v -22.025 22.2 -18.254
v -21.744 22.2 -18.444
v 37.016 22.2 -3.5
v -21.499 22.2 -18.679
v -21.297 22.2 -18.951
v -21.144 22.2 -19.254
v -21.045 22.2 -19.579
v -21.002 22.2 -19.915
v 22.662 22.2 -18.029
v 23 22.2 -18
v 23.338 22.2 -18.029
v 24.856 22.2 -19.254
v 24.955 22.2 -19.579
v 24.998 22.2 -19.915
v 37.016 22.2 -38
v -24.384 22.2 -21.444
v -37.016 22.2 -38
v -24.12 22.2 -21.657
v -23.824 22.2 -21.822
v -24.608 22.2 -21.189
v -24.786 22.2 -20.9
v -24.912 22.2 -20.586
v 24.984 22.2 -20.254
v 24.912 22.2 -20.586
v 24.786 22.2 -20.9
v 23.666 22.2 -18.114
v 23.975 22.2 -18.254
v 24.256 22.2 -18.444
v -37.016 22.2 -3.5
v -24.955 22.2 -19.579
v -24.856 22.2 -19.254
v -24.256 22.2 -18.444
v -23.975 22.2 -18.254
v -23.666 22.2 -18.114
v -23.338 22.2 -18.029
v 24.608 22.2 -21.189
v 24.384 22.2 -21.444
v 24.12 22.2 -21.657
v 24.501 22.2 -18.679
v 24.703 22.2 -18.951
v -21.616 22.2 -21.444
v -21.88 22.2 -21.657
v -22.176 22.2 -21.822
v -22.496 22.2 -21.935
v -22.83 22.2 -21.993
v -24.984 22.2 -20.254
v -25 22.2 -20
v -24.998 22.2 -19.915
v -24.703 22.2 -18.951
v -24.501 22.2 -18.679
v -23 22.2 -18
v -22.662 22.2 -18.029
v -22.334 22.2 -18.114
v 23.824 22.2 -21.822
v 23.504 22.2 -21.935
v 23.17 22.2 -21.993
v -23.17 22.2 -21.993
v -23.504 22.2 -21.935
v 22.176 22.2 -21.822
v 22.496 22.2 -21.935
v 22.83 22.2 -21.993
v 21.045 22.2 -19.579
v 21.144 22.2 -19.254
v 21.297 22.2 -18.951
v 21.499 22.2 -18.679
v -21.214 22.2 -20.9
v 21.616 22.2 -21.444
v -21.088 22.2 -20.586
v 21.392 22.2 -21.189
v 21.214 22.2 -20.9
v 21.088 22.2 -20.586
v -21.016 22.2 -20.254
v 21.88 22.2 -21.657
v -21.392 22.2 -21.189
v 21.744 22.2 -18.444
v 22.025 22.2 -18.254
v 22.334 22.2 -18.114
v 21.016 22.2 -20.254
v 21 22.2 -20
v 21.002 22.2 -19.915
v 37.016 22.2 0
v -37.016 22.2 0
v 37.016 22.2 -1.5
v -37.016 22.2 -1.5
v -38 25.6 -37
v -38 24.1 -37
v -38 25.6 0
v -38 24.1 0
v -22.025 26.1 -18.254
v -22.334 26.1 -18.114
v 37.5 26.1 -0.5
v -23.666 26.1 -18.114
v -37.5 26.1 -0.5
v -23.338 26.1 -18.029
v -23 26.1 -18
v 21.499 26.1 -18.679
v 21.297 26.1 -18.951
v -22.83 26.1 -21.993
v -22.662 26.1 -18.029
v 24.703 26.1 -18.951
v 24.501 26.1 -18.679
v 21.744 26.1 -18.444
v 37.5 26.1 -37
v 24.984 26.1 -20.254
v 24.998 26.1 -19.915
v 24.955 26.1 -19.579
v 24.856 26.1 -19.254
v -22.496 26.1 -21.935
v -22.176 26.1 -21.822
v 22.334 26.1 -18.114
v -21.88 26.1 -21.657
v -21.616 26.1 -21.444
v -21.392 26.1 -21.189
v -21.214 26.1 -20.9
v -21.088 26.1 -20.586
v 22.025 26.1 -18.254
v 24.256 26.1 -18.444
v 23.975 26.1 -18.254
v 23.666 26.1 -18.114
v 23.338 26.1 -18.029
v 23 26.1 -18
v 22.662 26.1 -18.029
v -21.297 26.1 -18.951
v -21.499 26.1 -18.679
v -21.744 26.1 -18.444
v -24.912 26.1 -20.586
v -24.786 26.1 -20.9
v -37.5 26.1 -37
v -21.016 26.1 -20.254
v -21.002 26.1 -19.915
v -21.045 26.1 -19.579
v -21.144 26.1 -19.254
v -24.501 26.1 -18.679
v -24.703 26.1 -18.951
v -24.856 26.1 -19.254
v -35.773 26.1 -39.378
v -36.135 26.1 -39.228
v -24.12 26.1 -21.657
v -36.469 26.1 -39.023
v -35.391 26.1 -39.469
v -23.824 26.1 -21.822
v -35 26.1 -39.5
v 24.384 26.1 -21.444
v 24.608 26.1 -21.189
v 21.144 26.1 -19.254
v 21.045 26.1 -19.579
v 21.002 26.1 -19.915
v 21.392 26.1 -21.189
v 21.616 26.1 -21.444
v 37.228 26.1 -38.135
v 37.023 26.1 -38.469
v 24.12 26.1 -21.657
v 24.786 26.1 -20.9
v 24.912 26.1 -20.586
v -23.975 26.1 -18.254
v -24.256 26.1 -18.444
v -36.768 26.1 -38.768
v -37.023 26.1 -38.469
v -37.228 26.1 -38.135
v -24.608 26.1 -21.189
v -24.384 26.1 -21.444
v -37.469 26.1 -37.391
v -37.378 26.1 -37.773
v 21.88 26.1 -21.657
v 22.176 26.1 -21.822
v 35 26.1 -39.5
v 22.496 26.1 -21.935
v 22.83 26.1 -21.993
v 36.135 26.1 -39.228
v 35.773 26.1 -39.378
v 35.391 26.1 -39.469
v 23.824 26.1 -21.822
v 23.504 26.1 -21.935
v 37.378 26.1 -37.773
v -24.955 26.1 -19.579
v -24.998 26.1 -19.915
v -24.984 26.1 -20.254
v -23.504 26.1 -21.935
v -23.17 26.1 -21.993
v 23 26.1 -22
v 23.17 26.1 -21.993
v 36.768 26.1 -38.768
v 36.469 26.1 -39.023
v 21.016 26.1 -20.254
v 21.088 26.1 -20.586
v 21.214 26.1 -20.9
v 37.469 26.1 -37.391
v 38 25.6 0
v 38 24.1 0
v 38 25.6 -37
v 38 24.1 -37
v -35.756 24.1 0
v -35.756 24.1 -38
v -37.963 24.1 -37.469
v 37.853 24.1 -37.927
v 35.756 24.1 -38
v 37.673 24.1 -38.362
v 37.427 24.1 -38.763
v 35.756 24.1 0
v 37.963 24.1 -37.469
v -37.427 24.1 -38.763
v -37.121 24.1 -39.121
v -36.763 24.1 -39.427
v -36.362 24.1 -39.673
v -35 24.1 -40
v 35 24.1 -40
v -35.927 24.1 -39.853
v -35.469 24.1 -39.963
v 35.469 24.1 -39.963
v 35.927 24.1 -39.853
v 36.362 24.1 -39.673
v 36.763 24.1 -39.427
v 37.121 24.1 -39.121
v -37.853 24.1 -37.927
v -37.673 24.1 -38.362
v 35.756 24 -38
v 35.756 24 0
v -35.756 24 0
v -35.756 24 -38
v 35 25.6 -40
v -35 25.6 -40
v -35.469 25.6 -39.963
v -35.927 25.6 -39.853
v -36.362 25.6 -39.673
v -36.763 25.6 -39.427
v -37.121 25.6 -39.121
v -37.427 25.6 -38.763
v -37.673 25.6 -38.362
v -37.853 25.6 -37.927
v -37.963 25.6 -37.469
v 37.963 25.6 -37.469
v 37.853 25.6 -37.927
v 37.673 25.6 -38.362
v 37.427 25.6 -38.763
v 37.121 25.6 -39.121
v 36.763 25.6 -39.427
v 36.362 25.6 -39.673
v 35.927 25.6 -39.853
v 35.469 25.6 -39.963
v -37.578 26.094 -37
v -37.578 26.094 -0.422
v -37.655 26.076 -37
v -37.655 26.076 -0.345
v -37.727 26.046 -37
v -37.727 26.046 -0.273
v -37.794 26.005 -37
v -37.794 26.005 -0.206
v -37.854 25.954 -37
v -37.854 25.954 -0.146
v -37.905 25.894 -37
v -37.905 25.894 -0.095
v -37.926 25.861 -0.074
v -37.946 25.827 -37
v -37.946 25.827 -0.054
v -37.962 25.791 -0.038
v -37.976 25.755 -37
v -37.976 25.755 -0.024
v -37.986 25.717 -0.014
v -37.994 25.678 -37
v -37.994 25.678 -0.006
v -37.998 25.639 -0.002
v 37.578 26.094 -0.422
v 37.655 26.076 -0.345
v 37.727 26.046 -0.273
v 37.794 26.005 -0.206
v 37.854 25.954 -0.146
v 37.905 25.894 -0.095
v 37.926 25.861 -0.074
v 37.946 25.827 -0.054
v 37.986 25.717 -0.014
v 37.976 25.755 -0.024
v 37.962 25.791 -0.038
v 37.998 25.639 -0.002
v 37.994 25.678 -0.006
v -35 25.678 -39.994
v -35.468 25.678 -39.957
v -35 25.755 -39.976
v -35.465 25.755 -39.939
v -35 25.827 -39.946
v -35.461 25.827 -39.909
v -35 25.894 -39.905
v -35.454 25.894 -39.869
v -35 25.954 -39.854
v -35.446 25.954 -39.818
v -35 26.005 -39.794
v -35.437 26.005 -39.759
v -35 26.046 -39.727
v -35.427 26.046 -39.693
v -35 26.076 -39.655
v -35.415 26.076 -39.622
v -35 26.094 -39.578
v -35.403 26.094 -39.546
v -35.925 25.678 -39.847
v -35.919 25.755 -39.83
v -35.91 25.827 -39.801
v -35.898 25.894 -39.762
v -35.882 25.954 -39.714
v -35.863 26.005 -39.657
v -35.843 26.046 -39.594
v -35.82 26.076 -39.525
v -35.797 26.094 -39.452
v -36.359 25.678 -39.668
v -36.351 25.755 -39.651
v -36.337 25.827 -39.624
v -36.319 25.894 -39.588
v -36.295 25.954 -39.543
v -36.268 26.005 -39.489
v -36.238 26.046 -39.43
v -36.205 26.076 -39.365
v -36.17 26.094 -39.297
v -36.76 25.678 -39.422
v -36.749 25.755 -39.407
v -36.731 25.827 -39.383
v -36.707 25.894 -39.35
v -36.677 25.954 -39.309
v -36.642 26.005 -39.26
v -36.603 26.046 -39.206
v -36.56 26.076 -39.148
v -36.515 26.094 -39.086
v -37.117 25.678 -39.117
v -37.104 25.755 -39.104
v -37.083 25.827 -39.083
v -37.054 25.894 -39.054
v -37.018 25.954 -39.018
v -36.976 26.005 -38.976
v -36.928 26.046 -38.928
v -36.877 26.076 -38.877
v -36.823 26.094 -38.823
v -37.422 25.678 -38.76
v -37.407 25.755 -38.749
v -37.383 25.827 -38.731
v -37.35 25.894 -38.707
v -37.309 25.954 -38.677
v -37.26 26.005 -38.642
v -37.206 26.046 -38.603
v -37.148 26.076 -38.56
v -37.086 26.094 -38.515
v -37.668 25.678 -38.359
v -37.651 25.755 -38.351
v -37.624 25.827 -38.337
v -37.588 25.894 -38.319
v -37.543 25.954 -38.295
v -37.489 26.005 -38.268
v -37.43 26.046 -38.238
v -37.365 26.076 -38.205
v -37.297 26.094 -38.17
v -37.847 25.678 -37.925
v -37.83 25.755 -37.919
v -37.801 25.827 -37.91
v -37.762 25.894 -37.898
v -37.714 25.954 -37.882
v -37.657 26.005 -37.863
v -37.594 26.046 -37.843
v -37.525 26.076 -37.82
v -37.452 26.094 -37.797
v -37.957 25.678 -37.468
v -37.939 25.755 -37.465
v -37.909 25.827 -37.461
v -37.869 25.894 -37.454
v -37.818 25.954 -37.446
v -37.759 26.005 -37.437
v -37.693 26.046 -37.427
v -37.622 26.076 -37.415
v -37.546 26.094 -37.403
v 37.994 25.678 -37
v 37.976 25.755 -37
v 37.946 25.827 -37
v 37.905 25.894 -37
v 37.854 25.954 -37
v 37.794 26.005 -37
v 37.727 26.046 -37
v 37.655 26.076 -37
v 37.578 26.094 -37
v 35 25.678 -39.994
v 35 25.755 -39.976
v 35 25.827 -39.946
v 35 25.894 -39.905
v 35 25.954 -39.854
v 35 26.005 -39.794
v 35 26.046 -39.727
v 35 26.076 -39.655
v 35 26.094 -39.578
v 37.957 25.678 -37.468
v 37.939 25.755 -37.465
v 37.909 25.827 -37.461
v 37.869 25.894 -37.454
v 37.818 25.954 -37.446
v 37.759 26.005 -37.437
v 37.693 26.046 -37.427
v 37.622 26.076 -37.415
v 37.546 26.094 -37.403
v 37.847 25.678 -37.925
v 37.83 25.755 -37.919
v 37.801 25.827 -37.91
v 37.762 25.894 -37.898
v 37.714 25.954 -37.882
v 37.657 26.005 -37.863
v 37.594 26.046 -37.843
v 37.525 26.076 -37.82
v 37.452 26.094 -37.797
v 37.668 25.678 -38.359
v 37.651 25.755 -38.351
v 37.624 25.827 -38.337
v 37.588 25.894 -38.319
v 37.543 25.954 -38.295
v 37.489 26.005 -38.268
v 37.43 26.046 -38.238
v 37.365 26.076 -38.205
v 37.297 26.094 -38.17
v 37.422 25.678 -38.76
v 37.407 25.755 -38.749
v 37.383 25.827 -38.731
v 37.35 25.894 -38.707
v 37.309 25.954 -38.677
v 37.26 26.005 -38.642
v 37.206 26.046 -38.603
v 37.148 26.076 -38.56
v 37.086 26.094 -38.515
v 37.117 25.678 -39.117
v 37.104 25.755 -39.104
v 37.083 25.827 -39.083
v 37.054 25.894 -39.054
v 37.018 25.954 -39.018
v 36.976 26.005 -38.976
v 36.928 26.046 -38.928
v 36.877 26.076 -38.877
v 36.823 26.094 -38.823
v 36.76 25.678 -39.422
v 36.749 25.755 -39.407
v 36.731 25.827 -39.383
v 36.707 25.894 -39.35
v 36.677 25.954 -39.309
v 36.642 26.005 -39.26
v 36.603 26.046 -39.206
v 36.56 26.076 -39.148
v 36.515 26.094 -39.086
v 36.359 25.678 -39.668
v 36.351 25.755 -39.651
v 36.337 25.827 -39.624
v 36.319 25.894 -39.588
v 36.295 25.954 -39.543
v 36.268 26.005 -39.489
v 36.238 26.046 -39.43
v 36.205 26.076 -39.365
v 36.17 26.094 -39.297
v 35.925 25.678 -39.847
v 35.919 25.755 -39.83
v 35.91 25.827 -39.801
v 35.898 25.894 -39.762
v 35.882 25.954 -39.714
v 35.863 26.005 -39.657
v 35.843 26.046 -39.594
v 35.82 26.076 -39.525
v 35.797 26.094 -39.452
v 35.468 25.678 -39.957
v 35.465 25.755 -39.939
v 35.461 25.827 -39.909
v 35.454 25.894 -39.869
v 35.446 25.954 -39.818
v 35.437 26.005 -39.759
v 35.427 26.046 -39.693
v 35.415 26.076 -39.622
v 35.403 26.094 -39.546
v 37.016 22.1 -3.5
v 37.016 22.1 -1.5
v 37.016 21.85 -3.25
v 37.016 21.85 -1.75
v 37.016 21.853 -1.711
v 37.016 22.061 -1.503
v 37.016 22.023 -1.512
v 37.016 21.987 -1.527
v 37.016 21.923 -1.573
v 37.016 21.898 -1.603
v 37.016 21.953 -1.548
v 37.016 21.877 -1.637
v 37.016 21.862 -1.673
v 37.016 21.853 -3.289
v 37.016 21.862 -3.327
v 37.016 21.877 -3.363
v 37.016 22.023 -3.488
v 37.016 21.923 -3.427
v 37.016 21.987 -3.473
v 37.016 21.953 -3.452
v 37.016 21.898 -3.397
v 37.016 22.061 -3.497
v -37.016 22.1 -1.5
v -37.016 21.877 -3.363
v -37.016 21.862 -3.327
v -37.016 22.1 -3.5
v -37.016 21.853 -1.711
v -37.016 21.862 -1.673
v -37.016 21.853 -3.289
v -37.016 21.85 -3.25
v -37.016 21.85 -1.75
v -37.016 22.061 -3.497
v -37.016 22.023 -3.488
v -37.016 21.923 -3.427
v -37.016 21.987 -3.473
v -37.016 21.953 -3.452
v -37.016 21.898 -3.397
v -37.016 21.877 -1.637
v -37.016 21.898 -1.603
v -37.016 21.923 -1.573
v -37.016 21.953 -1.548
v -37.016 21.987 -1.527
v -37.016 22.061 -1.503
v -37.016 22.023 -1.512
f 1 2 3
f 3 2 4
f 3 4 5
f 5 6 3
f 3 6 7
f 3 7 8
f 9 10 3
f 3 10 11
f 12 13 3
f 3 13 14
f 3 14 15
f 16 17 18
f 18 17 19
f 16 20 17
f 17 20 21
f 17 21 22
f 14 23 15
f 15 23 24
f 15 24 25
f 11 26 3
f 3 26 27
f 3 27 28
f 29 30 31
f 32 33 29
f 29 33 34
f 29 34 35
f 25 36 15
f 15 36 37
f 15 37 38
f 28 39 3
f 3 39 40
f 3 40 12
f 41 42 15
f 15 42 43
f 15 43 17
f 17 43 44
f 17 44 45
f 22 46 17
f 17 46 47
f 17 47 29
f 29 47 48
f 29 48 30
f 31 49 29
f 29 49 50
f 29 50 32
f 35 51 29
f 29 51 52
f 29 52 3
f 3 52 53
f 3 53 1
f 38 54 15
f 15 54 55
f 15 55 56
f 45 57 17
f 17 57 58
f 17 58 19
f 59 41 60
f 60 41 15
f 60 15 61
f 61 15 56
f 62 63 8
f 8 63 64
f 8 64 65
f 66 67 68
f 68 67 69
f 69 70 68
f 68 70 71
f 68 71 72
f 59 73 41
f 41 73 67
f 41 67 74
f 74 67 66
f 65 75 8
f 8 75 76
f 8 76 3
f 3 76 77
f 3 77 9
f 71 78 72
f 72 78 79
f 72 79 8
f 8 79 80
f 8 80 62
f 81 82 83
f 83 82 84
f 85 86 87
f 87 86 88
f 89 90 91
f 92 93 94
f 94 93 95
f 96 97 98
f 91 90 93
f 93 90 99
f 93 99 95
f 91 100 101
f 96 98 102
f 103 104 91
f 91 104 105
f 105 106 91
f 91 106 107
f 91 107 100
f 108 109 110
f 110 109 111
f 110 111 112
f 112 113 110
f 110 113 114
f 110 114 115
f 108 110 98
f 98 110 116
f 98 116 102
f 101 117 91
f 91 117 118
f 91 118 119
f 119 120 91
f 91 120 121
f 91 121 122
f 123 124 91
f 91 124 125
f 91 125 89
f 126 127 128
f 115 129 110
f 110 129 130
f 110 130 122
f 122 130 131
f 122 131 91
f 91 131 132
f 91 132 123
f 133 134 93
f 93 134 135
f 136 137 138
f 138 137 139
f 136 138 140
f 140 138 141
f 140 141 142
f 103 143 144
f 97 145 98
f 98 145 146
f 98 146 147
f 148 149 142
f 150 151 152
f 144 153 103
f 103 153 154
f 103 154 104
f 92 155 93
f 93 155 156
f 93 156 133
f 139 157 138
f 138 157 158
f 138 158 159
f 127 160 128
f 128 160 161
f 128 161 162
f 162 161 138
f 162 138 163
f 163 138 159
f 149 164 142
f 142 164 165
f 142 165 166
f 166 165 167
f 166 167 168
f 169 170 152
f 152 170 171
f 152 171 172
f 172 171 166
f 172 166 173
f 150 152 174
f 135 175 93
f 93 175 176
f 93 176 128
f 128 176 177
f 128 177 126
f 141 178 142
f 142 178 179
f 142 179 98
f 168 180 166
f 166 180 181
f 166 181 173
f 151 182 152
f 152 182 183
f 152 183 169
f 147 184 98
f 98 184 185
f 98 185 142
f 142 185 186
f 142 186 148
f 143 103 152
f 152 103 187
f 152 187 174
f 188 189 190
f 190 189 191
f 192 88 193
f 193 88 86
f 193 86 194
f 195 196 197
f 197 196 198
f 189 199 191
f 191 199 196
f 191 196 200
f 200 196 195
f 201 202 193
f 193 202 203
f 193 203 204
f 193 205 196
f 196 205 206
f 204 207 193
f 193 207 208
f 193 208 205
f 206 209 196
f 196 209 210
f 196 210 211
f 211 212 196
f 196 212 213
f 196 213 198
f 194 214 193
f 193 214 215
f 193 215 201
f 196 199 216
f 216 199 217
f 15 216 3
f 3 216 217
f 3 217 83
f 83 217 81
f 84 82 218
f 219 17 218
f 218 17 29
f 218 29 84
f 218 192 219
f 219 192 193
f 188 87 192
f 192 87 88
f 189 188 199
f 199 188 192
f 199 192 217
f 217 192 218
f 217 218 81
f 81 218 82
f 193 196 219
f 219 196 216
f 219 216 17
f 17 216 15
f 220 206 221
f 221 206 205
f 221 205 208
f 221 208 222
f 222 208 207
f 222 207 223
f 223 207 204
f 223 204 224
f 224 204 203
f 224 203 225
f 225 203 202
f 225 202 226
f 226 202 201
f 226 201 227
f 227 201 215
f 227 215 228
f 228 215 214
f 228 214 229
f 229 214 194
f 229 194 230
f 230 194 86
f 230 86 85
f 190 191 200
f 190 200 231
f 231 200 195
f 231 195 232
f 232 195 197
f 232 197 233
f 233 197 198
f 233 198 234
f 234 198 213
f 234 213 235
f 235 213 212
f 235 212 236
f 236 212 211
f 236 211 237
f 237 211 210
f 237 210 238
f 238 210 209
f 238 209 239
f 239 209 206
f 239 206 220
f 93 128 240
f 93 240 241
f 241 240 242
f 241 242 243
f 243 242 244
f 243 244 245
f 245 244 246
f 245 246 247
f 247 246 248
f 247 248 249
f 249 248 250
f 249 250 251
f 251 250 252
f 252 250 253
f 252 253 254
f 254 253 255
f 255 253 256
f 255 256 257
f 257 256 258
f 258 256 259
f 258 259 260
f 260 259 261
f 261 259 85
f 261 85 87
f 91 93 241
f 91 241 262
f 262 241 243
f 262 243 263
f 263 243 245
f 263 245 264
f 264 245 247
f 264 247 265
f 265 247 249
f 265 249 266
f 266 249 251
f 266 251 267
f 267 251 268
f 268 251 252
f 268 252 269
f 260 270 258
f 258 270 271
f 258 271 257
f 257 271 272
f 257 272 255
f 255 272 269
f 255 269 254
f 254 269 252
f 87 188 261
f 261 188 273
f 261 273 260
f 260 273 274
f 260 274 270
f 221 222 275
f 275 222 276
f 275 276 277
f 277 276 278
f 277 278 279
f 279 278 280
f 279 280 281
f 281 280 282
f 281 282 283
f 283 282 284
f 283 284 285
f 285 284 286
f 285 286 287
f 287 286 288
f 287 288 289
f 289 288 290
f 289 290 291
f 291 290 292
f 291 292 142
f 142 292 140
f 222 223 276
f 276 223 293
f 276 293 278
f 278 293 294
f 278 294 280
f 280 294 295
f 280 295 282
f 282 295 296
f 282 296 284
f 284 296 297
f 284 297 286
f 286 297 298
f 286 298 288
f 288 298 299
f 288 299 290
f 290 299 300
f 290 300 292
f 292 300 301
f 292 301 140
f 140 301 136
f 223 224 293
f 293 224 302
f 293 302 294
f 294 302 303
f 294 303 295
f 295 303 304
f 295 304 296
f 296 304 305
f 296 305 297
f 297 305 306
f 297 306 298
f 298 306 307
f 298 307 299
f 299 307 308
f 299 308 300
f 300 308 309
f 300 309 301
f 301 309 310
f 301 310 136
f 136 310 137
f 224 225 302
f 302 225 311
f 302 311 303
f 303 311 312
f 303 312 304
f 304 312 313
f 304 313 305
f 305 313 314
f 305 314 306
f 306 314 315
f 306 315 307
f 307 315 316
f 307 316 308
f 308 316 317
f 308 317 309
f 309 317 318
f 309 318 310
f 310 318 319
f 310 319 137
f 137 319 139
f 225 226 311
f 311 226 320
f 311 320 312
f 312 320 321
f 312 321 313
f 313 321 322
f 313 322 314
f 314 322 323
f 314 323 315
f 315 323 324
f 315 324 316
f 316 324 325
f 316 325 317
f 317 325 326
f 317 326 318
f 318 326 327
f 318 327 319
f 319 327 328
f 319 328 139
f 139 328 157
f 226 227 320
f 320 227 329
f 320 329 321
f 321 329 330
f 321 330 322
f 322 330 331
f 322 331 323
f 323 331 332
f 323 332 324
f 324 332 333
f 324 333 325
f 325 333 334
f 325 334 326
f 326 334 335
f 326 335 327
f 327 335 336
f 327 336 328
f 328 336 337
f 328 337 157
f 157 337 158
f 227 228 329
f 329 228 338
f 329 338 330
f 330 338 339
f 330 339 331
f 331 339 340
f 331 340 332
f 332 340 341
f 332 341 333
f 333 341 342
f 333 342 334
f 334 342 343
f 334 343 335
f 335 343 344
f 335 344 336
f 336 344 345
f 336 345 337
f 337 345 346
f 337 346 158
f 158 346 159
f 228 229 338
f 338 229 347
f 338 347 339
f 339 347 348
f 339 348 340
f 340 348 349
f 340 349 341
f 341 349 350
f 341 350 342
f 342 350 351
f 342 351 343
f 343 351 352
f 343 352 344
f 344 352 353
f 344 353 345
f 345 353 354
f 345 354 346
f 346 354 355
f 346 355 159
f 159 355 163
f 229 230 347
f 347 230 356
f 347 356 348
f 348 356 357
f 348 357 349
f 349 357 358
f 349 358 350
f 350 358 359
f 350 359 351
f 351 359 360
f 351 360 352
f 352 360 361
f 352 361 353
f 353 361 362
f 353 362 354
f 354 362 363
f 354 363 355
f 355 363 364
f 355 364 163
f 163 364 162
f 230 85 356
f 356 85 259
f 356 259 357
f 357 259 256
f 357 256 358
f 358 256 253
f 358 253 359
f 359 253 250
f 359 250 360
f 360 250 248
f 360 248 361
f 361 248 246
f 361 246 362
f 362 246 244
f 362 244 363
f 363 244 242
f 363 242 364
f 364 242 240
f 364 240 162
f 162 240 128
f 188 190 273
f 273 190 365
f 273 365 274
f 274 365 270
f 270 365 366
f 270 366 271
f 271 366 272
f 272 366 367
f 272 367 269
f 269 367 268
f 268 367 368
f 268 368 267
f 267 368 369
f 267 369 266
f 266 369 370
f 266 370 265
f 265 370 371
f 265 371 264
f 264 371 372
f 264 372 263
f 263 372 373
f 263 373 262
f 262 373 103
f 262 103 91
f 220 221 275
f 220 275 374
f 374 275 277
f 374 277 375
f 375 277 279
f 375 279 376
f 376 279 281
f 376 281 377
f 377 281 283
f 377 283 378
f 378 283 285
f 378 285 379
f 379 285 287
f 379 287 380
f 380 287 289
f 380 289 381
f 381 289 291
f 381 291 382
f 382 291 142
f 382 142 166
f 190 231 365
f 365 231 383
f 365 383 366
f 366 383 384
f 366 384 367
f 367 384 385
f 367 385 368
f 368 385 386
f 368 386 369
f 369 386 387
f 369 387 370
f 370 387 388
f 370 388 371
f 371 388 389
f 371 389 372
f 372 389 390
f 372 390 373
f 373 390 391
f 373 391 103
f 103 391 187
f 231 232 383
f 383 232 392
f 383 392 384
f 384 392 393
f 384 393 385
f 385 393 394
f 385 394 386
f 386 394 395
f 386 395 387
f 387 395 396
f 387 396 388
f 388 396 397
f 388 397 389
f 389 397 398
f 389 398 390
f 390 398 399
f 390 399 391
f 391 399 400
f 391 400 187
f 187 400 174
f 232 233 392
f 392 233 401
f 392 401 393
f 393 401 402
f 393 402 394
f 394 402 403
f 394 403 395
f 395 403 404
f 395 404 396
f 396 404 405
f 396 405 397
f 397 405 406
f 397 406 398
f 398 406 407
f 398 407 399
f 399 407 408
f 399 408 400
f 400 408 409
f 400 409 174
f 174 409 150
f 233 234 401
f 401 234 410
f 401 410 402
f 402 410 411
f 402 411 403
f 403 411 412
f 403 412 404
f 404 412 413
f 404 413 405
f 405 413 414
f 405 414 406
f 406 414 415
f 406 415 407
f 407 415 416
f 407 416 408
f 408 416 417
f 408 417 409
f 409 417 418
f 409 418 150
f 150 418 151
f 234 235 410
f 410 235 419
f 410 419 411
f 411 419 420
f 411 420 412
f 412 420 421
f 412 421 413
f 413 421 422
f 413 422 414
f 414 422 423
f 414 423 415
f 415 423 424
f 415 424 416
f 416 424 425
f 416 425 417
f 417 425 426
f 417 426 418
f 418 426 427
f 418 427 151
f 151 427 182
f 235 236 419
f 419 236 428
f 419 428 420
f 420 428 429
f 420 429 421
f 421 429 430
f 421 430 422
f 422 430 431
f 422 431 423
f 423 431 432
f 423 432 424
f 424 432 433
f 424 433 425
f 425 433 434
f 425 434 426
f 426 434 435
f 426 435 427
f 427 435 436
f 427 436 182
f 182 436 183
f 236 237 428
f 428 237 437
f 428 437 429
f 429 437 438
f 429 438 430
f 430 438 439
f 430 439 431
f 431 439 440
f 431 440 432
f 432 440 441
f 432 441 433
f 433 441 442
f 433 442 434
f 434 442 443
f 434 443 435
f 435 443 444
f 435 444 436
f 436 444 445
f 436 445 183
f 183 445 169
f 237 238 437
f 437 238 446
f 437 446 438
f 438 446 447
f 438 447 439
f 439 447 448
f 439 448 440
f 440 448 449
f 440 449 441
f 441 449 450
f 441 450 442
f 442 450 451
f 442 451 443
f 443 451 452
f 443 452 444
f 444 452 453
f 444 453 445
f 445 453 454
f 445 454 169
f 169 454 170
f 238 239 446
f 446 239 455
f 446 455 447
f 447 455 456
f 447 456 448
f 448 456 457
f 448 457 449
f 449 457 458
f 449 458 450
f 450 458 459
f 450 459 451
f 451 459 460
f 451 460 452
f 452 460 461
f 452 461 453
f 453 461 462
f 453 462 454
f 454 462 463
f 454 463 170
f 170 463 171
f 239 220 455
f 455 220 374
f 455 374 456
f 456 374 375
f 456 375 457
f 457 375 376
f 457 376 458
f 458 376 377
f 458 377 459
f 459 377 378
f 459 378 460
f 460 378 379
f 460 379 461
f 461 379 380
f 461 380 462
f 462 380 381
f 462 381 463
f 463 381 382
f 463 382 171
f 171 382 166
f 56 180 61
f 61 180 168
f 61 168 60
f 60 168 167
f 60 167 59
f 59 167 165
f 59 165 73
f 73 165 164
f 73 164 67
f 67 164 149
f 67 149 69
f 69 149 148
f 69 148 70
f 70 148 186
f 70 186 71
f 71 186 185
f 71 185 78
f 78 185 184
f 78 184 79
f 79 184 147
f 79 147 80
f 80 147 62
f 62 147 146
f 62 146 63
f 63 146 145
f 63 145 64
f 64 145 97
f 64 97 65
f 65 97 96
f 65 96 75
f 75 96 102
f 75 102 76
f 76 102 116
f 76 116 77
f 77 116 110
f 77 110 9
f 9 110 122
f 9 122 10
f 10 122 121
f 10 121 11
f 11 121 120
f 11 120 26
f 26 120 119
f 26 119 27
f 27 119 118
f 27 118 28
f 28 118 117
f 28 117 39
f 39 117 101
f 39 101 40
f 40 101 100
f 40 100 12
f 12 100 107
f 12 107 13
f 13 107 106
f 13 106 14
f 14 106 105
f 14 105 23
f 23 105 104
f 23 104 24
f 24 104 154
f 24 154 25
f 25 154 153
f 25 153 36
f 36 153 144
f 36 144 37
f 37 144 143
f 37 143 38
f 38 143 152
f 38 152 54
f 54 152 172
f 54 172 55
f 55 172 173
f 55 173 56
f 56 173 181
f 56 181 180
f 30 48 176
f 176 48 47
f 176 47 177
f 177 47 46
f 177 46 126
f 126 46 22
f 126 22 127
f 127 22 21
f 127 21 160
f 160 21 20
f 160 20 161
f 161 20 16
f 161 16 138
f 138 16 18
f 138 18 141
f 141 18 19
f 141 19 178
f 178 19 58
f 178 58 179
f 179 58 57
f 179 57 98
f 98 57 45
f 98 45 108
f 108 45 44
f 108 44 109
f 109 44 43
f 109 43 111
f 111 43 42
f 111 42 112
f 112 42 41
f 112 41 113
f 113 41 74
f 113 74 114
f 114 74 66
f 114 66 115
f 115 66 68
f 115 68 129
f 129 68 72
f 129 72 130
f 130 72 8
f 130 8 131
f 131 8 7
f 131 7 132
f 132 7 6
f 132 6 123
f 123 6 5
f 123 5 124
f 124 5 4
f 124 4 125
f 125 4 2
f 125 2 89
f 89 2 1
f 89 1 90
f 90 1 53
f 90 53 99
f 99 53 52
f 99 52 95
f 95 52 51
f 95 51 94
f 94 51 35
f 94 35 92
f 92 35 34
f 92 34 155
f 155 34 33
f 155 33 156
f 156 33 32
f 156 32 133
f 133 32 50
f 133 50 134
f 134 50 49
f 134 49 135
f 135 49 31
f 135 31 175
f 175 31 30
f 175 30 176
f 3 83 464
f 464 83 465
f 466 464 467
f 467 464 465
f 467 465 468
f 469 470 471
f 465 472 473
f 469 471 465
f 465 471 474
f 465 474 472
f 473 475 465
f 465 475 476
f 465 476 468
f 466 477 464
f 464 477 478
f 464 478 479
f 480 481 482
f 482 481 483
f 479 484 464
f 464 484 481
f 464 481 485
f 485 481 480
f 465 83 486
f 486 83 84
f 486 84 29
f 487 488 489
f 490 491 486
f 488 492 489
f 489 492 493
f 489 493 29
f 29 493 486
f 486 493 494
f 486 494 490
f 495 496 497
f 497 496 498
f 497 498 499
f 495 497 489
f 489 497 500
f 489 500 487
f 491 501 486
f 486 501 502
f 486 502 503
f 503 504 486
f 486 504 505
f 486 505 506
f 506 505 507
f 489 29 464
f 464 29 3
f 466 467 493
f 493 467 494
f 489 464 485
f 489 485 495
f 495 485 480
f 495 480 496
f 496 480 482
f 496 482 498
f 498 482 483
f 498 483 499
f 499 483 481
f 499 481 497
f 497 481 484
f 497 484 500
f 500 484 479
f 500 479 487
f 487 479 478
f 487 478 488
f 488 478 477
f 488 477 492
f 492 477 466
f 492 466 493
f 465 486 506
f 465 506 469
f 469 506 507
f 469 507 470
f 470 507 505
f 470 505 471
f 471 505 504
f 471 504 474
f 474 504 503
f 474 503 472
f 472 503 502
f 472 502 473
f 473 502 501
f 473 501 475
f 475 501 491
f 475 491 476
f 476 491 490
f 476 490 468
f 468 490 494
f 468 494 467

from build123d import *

# Parameters (mm, degrees)
BOSS_EXTRUDE1_DEPTH = 38
SKETCH2_W           = 76
SKETCH2_H           = 2
BOSS_EXTRUDE2_DEPTH = 2
FILLET1_R           = 3
FILLET2_R           = 0.5
CUT_EXTRUDE1_REACH  = 57.31
SKETCH3_R           = 2
SKETCH4_W           = 74.032437302
SKETCH4_H           = 2
BOSS_EXTRUDE3_DEPTH = 0.35
FILLET3_R           = 0.25


with BuildPart() as part:
    # Sketch1 → Boss-Extrude1 (new body)
    with BuildSketch(Plane.XY):
        Polygon((35.755845082, 24), (37.016218651, 22.2), (-37.016218651, 22.2), (-35.755845082, 24), (-35.755845082, 24.1), (-38, 24.1), (-38, 26.1), (38, 26.1), (38, 24.1), (35.755845082, 24.1), align=None)
    extrude(amount=-BOSS_EXTRUDE1_DEPTH)

    # Sketch2 → Boss-Extrude2 (add)
    with BuildSketch(Plane(origin=(0, 0, -38), x_dir=(-1, 0, 0), z_dir=(0, 0, -1))):
        with Locations((0, 25.1)):
            Rectangle(SKETCH2_W, SKETCH2_H)
    extrude(amount=BOSS_EXTRUDE2_DEPTH)

    # Fillet1
    fillet1_edges = [part.edges().sort_by_distance(p)[0] for p in [
        (-38, 25.1, -40),
        (38, 25.1, -40),
    ]]
    fillet(fillet1_edges, radius=FILLET1_R)

    # Fillet2
    fillet2_edges = [part.edges().sort_by_distance(p)[0] for p in [
        (0, 26.1, 0),
        (-38, 26.1, -18.5),
        (0, 26.1, -40),
        (38, 26.1, -18.5),
        (37.121320344, 26.1, -39.121320344),
        (-37.121320344, 26.1, -39.121320344),
    ]]
    fillet(fillet2_edges, radius=FILLET2_R)

    # Sketch3 → Cut-Extrude1 (cut, up to next)
    with BuildSketch(Plane(origin=(0, 26.1, 0), x_dir=(1, 0, 0), z_dir=(0, 1, 0)), mode=Mode.PRIVATE) as cut_extrude1_sk1:
        with Locations(Location((-23, 20, 0), (0, 0, 270))):
            Circle(SKETCH3_R)
    cut_extrude1_tool1 = extrude(cut_extrude1_sk1.sketch, amount=-CUT_EXTRUDE1_REACH, mode=Mode.PRIVATE) & part.part
    # Sketch3 → Cut-Extrude1 (cut, up to next)
    with BuildSketch(Plane(origin=(0, 26.1, 0), x_dir=(1, 0, 0), z_dir=(0, 1, 0)), mode=Mode.PRIVATE) as cut_extrude1_sk2:
        with Locations(Location((23, 20, 0), (0, 0, 180))):
            Circle(SKETCH3_R)
    cut_extrude1_tool2 = extrude(cut_extrude1_sk2.sketch, amount=-CUT_EXTRUDE1_REACH, mode=Mode.PRIVATE) & part.part
    add(cut_extrude1_tool1.solids().sort_by_distance((-23, 26.1, -20))[0], mode=Mode.SUBTRACT)
    add(cut_extrude1_tool2.solids().sort_by_distance((23, 26.1, -20))[0], mode=Mode.SUBTRACT)

    # Sketch4 → Boss-Extrude3 (add)
    with BuildSketch(Plane.XZ.offset(-22.2)):
        with Locations((0, -2.5)):
            Rectangle(SKETCH4_W, SKETCH4_H)
    extrude(amount=BOSS_EXTRUDE3_DEPTH)

    # Fillet3
    fillet3_edges = [part.edges().sort_by_distance(p)[0] for p in [
        (0, 21.85, -1.5),
        (0, 21.85, -3.5),
    ]]
    fillet(fillet3_edges, radius=FILLET3_R)


solid = part.part
